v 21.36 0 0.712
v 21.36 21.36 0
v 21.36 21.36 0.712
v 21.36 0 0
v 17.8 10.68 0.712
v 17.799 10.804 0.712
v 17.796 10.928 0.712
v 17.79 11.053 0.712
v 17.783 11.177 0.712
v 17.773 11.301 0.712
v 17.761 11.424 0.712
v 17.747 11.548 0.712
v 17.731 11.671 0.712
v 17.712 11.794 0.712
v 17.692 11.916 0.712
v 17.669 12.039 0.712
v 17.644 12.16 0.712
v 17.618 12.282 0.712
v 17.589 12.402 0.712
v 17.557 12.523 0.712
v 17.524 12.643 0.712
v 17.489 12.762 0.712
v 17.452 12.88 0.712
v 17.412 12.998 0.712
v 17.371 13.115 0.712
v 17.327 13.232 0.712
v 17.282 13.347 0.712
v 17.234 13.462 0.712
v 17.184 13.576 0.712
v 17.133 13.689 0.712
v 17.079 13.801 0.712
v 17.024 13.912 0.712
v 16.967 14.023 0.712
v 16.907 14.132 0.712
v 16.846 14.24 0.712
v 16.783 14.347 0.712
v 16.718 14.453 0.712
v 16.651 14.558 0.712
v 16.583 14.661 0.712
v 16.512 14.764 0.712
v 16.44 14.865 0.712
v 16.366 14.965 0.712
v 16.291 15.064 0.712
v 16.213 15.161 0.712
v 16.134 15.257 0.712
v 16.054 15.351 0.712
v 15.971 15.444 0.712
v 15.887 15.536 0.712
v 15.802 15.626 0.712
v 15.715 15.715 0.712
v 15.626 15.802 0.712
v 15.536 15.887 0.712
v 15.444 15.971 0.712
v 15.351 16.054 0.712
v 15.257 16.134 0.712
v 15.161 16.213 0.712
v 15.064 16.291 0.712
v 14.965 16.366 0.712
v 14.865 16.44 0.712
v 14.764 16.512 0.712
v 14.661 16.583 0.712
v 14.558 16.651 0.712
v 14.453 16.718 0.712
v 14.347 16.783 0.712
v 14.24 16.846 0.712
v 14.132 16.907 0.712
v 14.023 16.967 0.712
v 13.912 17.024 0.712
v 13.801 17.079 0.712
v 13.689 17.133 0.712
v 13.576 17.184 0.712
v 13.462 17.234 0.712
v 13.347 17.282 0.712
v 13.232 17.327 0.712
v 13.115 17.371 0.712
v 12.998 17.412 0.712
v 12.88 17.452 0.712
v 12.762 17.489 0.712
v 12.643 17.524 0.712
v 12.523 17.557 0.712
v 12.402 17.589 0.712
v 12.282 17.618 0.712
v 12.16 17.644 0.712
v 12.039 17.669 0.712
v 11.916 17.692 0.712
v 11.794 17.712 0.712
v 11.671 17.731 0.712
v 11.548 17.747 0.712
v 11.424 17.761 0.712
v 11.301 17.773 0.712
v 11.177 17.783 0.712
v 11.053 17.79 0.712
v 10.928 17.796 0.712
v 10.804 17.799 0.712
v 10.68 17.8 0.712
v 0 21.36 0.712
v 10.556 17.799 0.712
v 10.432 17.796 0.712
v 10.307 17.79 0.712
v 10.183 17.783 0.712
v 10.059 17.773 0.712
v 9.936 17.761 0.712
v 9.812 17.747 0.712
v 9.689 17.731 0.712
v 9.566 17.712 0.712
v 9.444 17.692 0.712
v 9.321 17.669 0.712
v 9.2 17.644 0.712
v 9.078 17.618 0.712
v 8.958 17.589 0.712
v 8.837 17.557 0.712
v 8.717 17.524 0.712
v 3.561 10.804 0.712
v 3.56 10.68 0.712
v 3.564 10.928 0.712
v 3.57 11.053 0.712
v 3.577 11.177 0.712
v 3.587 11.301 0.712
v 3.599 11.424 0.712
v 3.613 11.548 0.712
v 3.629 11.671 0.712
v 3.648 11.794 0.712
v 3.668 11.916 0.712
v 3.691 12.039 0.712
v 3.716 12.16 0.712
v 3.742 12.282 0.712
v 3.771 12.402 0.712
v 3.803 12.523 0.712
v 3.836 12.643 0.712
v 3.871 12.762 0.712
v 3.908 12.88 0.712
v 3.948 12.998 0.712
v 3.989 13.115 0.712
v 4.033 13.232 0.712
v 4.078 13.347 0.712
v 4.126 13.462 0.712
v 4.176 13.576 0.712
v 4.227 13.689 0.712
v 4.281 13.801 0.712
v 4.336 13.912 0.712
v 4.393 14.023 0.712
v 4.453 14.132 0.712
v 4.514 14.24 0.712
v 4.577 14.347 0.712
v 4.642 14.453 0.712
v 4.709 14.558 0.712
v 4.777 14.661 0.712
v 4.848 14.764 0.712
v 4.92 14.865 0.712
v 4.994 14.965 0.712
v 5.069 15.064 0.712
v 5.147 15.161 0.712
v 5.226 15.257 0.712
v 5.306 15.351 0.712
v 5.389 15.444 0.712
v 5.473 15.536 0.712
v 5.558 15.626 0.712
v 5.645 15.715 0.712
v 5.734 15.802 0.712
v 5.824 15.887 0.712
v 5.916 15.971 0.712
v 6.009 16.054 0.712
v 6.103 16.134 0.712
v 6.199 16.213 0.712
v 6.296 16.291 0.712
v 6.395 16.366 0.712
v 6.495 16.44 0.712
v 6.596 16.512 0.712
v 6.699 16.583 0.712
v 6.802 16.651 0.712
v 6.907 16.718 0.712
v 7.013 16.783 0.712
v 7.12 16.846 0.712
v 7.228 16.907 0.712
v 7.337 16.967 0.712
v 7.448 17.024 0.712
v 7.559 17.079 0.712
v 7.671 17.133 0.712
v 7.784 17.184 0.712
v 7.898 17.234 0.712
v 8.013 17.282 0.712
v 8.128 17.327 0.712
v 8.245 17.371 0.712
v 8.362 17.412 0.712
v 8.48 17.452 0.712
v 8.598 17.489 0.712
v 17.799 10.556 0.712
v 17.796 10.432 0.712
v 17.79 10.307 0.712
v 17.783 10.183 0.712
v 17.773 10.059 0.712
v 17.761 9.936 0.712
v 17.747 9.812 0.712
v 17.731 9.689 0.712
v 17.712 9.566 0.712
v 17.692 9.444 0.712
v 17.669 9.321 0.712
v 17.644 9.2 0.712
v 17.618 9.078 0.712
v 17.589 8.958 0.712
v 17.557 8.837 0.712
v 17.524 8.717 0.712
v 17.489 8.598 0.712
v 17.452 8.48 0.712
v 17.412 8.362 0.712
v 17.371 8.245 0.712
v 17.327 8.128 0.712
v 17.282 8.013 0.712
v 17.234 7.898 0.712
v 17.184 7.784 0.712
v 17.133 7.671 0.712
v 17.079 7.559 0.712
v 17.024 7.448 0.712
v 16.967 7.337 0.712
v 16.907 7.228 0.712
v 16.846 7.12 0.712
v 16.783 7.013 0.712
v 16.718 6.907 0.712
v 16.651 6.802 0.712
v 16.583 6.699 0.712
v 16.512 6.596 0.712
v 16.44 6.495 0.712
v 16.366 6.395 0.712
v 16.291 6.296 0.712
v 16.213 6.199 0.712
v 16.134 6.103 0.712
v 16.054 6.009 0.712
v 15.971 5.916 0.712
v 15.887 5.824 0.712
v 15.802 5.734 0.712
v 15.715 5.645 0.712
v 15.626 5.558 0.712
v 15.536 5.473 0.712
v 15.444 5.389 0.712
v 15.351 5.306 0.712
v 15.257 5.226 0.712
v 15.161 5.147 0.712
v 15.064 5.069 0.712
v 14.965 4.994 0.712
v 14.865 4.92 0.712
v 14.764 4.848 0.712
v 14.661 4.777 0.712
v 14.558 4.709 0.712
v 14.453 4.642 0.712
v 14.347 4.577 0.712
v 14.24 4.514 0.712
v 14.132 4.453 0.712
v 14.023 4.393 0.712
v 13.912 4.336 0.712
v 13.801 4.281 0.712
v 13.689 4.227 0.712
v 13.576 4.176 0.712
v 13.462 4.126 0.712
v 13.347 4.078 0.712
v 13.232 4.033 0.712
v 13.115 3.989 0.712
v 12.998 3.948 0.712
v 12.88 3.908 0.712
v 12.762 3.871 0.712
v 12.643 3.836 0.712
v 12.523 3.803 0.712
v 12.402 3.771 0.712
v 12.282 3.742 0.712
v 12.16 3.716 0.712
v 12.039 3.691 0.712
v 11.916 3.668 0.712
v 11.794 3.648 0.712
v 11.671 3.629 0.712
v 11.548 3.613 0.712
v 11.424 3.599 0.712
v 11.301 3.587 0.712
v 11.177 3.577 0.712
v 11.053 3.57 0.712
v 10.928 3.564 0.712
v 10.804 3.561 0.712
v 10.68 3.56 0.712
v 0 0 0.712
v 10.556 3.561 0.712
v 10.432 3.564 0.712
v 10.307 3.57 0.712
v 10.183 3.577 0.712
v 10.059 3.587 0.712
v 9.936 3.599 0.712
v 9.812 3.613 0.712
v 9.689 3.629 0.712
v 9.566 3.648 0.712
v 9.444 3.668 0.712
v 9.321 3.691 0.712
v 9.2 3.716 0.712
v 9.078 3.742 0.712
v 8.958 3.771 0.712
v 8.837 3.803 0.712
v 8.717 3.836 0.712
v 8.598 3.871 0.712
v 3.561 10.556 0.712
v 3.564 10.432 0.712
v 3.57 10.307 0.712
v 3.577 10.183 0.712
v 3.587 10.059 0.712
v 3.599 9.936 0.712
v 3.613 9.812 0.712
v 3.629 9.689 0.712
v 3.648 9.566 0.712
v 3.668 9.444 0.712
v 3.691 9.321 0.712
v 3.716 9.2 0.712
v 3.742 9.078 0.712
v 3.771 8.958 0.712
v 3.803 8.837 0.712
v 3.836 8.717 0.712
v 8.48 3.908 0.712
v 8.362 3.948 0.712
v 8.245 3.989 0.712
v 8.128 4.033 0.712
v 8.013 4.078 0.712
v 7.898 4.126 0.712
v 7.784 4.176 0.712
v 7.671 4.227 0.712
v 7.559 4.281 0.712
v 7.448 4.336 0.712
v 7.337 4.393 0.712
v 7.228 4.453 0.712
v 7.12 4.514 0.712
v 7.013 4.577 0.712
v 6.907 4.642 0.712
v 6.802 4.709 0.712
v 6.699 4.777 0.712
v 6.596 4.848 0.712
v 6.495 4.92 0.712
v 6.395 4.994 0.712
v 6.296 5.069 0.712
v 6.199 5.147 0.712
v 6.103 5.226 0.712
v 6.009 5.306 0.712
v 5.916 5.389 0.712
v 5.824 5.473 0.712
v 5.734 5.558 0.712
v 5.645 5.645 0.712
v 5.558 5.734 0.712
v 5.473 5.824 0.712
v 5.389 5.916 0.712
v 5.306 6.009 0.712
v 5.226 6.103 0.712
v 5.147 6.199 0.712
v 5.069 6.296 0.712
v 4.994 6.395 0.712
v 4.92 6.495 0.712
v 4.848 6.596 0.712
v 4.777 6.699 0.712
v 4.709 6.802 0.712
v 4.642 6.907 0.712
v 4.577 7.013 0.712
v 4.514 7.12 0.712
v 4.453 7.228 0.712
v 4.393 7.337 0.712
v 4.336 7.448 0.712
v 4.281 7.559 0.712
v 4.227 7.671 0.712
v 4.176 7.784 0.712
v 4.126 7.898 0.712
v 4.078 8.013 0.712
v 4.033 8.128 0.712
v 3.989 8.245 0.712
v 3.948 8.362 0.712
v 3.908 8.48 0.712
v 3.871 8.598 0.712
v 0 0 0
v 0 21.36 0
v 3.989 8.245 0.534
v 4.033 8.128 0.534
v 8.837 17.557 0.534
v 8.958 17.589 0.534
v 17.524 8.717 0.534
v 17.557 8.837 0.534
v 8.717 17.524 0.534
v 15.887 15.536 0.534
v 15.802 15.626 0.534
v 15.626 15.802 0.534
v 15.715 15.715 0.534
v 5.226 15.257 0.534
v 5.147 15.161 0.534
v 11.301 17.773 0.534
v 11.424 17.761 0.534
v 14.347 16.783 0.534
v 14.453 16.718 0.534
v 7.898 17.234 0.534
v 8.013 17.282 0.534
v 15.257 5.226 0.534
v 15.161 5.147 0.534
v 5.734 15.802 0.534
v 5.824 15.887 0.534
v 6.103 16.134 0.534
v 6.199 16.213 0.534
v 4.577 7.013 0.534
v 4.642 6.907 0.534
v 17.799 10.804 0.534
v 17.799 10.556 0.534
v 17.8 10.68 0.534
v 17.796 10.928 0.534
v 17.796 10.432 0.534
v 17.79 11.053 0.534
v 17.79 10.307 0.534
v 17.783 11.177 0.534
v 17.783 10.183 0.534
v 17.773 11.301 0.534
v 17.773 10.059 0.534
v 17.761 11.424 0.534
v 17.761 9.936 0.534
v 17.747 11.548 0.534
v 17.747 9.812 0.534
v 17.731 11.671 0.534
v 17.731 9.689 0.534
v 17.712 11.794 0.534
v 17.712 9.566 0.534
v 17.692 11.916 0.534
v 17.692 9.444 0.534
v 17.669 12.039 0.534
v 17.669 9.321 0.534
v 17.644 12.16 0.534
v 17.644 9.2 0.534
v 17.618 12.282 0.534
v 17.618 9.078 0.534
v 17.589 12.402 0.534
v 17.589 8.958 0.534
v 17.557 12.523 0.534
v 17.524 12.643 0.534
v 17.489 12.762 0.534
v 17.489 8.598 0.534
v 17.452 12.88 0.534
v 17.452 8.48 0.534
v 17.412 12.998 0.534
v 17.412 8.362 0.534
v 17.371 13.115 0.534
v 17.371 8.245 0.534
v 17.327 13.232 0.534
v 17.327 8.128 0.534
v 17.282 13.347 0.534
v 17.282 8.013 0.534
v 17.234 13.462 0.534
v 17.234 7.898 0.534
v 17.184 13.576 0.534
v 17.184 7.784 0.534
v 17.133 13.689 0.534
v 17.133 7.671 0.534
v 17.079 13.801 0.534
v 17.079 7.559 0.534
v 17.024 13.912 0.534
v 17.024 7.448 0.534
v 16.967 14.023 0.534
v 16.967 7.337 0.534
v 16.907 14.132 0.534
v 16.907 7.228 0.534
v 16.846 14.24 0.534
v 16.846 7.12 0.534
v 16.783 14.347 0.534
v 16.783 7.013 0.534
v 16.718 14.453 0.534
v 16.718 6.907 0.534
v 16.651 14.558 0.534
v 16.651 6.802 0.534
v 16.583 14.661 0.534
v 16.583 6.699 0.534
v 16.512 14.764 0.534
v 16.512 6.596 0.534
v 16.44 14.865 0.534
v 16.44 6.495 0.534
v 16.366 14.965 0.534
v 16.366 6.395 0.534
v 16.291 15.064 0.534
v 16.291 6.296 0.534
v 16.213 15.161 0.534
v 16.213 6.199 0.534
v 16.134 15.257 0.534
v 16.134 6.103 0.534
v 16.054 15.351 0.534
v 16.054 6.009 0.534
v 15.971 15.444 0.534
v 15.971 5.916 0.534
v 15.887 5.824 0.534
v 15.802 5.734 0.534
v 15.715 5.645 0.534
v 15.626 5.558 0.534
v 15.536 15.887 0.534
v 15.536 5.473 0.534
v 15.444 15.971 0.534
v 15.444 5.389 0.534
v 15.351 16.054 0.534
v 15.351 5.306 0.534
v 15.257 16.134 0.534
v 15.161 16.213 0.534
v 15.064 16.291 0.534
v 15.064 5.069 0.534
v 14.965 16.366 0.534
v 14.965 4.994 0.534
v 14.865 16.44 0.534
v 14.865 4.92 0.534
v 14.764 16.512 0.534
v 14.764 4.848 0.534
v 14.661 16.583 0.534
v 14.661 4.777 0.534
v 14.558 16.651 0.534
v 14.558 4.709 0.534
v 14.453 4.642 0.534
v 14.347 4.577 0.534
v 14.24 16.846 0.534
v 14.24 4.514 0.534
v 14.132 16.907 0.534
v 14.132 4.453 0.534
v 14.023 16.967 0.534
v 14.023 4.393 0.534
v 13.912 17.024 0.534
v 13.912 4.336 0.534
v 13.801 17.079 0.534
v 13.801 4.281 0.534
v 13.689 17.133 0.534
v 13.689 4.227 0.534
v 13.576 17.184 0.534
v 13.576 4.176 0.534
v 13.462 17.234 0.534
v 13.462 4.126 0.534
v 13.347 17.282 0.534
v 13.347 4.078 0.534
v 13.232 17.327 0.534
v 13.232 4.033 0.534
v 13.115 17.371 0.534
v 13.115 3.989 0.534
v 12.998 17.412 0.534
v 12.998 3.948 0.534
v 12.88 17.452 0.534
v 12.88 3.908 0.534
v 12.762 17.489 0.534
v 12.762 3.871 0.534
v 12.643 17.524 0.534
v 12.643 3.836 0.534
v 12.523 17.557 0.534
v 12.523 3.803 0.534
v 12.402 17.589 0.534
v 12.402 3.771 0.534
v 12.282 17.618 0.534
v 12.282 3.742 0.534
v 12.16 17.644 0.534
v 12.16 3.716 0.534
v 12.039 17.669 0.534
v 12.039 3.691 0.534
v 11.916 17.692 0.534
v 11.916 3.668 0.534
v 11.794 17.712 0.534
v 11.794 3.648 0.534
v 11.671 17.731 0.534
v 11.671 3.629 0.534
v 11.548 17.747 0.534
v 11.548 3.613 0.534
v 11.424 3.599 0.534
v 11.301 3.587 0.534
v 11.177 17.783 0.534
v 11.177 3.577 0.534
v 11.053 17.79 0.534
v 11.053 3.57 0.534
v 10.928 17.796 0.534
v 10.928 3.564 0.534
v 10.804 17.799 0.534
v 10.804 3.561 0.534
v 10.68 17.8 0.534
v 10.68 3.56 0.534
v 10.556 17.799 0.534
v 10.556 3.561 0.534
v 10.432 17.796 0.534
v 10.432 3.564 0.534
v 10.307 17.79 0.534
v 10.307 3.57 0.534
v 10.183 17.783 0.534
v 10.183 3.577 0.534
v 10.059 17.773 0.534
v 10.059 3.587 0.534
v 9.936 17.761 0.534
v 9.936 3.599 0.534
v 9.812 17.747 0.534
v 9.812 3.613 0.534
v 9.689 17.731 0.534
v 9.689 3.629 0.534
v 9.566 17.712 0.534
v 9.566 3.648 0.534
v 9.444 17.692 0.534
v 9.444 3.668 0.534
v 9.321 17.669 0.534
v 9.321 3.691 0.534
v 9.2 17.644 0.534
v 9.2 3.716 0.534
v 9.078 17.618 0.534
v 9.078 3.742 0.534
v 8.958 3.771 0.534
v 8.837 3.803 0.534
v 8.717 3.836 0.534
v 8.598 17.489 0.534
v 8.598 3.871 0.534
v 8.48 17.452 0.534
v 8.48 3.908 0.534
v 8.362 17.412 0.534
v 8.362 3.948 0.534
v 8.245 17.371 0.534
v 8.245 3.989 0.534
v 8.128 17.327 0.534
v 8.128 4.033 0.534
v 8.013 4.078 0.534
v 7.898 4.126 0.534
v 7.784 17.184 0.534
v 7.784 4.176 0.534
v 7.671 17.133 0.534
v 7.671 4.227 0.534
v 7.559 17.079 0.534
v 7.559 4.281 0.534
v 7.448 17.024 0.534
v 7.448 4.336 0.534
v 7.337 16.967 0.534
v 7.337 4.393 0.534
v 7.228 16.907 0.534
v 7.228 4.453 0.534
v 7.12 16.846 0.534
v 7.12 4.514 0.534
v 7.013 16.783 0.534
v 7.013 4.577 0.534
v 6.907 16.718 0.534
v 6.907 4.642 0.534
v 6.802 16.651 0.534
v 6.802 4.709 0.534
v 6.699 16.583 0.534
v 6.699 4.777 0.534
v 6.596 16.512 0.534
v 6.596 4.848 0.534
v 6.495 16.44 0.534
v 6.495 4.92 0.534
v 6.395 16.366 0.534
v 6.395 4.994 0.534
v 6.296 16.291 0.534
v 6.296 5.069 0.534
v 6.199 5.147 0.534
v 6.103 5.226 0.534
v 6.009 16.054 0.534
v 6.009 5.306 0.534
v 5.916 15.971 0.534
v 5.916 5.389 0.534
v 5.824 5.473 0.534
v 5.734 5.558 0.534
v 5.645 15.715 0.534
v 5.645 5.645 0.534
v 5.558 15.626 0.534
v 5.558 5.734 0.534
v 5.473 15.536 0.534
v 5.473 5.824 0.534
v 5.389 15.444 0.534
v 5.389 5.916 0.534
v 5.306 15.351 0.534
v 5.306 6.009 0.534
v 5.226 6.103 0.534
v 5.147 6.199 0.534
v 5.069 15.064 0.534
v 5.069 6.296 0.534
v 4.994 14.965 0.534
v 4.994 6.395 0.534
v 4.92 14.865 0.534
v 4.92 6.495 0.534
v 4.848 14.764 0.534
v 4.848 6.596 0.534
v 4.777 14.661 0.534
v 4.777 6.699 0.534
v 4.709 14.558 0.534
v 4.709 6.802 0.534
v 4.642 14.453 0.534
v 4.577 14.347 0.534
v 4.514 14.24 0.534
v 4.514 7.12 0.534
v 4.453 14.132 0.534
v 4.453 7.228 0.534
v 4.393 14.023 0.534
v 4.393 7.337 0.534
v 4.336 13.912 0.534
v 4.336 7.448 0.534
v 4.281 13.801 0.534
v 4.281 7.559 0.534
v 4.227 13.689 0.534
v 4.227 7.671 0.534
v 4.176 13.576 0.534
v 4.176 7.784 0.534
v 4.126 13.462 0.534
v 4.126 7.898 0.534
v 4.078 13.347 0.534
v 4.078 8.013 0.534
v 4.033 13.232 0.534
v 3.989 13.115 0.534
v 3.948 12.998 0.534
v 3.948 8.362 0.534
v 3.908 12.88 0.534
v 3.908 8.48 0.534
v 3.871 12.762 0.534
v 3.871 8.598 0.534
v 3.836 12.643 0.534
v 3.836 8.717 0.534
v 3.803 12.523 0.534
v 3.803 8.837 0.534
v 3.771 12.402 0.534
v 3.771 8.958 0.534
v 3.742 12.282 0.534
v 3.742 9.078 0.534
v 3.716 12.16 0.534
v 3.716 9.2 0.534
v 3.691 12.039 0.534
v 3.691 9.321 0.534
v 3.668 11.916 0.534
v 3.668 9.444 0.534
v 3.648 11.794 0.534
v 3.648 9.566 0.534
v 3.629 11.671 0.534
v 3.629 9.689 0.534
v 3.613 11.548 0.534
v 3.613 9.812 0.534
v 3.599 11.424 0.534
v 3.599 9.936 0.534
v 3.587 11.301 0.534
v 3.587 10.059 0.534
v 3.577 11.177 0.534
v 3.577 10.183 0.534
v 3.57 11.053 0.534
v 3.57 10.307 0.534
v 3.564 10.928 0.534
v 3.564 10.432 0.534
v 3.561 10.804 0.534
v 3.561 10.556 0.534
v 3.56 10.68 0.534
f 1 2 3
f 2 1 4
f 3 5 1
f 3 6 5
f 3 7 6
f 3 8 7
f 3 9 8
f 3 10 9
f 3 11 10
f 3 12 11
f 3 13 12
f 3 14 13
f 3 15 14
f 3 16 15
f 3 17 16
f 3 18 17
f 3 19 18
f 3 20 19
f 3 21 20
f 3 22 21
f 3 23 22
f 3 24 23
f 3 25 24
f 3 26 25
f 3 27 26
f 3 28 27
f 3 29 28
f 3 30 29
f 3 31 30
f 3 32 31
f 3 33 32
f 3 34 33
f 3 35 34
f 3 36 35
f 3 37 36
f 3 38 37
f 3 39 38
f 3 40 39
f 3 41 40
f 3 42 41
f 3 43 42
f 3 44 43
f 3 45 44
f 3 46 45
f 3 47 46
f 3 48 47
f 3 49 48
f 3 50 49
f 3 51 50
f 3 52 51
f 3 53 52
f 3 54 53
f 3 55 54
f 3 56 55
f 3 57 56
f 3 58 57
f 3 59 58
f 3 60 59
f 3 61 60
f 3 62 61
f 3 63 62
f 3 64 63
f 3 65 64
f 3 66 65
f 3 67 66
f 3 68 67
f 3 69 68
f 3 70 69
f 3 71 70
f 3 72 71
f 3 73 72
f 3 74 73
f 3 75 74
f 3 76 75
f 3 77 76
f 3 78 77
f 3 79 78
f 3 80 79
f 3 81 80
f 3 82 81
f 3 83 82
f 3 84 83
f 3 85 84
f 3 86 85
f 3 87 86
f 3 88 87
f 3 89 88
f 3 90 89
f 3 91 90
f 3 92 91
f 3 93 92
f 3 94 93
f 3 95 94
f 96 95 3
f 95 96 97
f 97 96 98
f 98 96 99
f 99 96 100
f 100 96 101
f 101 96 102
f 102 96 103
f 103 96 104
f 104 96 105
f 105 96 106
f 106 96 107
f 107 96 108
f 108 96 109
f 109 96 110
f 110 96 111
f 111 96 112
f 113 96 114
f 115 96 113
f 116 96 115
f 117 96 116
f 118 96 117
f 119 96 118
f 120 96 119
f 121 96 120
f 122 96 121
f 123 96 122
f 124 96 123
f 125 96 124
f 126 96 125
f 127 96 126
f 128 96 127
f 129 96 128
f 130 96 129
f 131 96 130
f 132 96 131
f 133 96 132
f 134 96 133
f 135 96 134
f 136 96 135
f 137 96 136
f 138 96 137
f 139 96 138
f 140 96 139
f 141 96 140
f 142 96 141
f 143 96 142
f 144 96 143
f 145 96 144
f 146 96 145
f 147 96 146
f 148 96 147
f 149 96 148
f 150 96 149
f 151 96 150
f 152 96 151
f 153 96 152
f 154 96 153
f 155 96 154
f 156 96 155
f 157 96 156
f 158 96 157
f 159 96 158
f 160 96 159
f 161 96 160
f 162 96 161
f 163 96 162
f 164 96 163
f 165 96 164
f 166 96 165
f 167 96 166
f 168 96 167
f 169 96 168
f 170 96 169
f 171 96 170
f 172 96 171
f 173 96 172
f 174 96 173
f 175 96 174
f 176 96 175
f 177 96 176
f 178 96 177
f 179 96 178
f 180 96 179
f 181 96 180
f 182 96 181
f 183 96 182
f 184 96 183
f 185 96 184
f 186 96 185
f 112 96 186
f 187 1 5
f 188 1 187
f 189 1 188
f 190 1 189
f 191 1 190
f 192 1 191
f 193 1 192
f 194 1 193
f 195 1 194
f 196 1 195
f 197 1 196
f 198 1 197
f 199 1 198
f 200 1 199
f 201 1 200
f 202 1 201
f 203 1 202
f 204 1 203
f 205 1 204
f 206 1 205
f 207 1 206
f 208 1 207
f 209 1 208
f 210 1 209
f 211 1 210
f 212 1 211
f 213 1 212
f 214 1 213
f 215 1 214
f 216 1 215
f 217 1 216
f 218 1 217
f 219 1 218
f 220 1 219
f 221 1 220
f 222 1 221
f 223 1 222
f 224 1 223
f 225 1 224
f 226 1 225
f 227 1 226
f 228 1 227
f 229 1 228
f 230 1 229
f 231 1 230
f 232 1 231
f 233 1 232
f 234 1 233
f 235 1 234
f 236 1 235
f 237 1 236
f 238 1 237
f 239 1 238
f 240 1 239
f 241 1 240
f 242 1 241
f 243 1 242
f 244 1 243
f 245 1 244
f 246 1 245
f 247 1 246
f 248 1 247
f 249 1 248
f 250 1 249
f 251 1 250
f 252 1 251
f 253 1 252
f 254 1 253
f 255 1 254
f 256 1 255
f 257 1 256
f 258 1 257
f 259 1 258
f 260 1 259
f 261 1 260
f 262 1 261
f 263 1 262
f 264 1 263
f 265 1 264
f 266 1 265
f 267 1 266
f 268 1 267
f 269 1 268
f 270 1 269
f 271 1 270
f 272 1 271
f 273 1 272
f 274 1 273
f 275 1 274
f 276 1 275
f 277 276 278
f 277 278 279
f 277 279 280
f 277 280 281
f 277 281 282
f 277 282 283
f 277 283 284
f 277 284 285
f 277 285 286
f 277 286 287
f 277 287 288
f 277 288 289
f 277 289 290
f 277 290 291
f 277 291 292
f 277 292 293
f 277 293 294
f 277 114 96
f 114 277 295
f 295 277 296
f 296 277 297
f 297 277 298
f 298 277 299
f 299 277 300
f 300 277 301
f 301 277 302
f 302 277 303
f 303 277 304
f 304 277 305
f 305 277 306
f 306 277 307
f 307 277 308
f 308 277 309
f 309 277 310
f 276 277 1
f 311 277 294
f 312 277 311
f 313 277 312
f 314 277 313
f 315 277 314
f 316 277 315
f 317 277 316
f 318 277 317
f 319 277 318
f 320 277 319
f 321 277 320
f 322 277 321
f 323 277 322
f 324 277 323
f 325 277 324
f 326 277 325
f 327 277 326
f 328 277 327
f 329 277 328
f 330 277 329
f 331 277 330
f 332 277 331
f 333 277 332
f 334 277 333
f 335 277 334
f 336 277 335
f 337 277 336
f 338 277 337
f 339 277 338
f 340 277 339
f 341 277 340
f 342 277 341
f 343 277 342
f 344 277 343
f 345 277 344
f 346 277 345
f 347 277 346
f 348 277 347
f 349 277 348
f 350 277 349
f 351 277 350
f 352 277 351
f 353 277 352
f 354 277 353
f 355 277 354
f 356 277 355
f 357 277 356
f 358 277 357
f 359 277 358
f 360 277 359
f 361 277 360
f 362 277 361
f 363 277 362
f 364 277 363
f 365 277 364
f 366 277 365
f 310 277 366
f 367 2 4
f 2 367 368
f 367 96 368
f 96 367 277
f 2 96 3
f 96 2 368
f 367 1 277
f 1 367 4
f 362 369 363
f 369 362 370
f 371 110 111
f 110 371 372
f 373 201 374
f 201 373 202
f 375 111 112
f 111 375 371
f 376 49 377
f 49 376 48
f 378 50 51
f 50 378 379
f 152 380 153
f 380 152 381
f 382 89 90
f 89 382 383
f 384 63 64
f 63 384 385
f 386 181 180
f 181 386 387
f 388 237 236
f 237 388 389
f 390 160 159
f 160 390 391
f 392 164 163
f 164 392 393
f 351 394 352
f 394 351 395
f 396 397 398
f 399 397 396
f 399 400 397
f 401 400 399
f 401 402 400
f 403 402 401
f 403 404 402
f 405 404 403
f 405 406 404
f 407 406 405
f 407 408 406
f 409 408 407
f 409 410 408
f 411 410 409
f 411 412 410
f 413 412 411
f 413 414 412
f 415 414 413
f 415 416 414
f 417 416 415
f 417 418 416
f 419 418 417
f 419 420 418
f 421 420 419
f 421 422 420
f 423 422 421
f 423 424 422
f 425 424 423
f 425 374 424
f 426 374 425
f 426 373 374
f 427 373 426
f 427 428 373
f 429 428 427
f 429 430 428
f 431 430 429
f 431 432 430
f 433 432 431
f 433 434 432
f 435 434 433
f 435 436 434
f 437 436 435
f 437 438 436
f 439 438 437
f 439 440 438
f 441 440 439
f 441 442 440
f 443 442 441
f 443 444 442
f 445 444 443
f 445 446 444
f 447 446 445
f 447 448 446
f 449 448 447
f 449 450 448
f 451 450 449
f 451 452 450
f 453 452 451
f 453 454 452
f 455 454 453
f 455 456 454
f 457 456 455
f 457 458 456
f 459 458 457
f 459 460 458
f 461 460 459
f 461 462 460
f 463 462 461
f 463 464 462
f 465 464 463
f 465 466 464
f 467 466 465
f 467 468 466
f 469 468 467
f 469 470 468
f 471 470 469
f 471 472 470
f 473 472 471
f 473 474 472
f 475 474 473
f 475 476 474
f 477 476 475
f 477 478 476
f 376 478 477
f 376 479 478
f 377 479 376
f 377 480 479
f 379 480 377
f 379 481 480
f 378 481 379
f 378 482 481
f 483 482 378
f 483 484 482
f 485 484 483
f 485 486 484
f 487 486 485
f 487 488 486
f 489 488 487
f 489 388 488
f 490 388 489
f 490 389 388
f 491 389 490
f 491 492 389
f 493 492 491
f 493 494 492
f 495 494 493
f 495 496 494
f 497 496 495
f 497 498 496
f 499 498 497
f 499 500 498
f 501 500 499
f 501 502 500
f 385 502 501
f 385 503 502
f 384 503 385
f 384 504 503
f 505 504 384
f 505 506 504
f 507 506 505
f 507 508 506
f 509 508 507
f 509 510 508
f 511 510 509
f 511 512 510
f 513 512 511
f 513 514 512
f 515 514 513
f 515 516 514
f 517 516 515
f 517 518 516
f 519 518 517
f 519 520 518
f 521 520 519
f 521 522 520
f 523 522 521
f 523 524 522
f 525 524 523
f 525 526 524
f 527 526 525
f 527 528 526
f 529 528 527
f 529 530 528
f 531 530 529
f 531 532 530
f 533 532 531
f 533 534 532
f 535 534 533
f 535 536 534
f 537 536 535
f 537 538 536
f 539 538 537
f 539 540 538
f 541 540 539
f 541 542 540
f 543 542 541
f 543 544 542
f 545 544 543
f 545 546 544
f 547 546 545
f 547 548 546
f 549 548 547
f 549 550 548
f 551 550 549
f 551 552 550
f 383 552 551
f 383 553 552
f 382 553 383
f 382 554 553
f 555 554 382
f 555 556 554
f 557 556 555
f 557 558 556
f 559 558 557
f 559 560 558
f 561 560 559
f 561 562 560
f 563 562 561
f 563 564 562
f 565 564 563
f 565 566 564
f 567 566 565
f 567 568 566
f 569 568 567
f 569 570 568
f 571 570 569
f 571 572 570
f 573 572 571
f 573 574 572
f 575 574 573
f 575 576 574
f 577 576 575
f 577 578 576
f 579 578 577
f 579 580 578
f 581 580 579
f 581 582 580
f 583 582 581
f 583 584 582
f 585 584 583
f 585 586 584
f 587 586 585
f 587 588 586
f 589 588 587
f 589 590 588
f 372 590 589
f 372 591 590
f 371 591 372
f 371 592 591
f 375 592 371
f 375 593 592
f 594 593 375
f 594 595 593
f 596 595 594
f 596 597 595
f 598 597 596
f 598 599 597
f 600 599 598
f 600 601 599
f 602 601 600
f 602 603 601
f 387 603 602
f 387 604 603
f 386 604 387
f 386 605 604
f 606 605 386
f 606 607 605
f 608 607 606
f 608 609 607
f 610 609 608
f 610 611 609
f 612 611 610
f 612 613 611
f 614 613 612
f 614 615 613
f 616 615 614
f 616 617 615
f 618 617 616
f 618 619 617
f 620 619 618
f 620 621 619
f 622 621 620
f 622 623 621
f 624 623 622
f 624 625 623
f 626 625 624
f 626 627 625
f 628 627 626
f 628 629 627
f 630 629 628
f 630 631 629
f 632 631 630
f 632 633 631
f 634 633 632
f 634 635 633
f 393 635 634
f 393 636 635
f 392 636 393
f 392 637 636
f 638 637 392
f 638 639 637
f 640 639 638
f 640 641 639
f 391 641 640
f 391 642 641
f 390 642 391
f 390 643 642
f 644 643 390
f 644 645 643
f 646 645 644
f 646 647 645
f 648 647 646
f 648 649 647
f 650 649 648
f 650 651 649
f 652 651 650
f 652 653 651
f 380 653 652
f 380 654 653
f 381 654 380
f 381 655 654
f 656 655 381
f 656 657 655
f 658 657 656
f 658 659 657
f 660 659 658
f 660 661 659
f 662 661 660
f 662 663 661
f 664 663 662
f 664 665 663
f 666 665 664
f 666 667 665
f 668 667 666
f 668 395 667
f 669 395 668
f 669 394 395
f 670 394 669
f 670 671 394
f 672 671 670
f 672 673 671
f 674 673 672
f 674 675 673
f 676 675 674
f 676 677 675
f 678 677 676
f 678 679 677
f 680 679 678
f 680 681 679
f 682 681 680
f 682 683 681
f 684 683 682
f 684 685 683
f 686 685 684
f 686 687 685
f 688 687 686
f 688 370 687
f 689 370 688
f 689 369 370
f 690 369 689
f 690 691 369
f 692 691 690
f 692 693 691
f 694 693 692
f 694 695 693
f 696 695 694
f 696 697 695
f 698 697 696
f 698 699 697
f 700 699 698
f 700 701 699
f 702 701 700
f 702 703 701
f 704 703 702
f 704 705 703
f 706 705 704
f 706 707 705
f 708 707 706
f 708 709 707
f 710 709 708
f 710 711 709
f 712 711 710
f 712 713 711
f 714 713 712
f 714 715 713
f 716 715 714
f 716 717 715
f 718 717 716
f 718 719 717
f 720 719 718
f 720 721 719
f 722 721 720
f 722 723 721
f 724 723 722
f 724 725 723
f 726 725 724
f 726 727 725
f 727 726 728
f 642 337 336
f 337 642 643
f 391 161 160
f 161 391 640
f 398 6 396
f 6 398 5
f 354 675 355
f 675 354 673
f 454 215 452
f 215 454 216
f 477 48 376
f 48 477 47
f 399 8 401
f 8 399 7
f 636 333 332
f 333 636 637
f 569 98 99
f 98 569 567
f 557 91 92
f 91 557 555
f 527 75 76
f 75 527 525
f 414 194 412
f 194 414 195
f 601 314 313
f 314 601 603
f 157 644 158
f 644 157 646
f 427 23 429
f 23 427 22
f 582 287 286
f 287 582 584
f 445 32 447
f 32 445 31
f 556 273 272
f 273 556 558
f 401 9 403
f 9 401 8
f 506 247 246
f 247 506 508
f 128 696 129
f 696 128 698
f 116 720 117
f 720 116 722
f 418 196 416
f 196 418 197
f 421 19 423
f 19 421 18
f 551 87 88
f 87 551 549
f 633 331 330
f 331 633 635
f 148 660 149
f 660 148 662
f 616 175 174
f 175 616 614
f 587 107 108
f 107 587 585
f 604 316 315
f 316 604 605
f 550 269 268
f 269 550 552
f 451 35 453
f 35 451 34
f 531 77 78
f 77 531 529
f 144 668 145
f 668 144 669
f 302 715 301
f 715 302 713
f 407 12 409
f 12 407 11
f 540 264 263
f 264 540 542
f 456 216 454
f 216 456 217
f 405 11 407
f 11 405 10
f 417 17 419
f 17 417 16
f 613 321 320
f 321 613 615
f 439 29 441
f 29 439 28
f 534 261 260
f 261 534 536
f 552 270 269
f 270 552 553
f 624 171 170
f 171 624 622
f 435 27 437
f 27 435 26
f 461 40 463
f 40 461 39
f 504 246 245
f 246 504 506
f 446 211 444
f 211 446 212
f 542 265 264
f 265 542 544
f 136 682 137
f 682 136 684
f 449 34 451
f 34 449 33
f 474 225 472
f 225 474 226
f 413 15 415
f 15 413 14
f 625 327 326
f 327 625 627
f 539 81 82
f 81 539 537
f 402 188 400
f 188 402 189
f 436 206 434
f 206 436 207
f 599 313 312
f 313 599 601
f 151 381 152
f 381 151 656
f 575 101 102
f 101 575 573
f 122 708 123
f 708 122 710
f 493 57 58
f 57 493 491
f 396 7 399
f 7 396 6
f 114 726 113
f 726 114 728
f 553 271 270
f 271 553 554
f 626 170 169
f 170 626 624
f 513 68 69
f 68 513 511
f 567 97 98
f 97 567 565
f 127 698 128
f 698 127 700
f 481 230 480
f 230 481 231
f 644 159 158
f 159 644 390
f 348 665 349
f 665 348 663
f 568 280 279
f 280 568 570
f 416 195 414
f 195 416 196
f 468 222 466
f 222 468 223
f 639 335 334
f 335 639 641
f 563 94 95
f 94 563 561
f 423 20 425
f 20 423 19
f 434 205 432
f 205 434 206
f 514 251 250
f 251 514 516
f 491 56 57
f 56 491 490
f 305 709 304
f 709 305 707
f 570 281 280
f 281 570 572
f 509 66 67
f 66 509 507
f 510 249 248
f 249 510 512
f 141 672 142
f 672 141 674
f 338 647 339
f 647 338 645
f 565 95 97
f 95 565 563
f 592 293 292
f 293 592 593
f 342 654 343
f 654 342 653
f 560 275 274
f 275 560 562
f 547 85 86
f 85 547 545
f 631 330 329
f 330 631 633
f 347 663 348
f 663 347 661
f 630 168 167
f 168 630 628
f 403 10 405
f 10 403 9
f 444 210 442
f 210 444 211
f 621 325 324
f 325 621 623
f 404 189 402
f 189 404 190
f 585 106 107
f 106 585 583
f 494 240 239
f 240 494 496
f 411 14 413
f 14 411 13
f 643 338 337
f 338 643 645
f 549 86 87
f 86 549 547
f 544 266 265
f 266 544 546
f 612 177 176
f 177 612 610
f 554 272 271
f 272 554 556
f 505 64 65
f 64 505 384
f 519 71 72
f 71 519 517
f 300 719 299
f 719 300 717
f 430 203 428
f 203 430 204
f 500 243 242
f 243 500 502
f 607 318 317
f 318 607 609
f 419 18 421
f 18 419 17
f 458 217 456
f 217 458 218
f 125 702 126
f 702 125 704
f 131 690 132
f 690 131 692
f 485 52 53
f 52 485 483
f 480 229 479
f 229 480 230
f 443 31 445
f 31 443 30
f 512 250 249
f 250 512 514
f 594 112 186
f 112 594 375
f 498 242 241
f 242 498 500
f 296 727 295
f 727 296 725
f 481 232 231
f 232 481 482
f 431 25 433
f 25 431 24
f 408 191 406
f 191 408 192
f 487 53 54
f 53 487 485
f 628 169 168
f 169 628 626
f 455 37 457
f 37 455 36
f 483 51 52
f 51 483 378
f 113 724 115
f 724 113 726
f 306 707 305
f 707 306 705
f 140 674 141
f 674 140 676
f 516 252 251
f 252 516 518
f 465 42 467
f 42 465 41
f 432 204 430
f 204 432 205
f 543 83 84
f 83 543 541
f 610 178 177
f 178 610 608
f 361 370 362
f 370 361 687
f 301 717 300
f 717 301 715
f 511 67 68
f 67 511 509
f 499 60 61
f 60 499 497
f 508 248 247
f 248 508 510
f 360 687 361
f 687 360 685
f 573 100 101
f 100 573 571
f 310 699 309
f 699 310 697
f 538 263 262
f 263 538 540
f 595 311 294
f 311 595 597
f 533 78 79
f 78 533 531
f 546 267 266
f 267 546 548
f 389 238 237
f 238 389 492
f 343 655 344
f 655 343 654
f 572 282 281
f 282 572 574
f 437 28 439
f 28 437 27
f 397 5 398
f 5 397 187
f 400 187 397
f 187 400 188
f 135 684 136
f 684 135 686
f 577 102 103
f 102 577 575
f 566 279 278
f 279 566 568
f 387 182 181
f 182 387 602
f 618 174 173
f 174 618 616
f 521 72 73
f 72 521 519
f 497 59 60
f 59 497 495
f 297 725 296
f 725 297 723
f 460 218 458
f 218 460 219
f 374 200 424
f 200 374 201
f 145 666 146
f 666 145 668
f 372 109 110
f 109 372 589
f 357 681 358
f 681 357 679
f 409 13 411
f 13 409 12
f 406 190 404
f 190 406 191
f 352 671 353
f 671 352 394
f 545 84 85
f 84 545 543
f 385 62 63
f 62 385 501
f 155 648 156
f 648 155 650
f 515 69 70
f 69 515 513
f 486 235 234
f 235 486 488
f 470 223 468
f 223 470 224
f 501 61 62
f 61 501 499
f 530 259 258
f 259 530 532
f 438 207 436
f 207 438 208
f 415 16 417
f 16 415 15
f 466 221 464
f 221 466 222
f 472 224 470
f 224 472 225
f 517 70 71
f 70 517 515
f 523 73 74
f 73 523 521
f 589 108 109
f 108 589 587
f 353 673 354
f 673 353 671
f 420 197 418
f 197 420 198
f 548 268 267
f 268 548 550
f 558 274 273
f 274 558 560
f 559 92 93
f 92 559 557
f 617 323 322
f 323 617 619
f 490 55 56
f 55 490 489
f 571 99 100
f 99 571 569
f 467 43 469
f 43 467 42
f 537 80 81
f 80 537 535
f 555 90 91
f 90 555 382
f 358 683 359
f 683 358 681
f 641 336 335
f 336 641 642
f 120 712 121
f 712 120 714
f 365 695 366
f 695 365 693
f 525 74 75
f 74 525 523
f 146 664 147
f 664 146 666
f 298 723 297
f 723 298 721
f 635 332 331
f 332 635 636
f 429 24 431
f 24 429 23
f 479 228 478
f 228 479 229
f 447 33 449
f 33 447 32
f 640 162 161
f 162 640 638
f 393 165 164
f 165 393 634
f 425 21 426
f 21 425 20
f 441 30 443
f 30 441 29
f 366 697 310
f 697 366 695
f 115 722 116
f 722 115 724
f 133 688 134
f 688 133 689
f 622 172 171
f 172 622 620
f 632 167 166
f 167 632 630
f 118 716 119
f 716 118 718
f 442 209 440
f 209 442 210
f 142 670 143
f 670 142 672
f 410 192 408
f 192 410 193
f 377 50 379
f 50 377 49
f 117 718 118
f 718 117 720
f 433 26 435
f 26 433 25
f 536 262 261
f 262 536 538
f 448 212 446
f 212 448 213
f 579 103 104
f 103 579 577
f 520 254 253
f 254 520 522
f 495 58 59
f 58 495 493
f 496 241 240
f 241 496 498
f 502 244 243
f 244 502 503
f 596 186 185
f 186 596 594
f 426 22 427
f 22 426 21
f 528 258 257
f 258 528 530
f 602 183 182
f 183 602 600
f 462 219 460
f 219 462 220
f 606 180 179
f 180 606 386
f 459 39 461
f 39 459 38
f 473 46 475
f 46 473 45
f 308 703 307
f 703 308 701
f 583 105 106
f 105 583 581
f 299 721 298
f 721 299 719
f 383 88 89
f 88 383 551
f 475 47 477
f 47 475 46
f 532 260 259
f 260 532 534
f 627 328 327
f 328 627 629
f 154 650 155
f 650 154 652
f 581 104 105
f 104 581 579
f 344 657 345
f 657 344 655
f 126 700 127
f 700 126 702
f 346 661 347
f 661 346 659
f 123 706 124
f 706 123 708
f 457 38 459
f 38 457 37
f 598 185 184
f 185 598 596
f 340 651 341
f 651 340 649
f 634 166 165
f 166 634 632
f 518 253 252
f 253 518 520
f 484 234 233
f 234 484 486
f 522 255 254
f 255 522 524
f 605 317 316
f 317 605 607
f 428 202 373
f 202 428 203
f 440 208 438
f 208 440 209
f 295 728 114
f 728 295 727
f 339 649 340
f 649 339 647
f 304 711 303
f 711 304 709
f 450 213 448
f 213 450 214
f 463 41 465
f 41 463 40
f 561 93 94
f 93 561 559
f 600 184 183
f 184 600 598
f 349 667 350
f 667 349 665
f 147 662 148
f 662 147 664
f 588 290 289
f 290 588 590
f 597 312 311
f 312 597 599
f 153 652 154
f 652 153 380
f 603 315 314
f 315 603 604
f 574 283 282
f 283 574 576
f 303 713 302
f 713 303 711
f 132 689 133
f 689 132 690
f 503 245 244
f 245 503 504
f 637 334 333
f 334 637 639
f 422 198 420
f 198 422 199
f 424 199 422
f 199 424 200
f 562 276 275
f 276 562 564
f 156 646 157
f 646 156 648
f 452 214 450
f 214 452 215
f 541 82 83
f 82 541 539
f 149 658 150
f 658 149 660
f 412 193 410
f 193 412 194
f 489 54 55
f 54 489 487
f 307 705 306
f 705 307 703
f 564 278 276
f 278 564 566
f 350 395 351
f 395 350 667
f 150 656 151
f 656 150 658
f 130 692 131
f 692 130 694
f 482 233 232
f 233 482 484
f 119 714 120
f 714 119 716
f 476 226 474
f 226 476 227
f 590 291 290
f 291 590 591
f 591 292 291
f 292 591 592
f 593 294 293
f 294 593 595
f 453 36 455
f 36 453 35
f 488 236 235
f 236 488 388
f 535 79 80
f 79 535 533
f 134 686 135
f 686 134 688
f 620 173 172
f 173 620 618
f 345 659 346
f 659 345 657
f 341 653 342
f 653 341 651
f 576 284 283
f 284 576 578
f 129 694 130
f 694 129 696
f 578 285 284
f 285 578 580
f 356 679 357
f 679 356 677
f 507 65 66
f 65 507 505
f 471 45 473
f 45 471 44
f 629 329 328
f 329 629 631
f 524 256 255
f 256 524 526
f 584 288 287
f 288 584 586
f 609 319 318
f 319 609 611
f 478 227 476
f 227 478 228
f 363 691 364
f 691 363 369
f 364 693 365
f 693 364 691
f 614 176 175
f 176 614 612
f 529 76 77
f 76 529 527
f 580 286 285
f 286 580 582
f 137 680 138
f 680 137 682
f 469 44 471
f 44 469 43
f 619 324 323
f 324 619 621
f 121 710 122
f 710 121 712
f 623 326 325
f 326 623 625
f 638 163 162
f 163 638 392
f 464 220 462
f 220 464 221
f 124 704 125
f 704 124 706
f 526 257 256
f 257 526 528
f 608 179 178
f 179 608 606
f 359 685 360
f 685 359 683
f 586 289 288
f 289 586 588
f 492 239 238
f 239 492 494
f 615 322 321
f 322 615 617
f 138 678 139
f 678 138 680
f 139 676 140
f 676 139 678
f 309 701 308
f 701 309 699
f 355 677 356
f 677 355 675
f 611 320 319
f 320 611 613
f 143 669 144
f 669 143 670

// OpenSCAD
$fn = 360;

// Actual measured button dimensions in mm.
ACTUAL_SQUARE_SIDE = 6;
ACTUAL_CIRCLE_DIAMETER = 4;
ACTUAL_HEIGHT = 0.2;

// set to how much larger than actual it should be.
SCALING_FACTOR = 3.56;

scale(v = [SCALING_FACTOR, SCALING_FACTOR, SCALING_FACTOR]) {

    difference() {
        cube([ACTUAL_SQUARE_SIDE, ACTUAL_SQUARE_SIDE, ACTUAL_HEIGHT]);
        
        translate([ACTUAL_SQUARE_SIDE / 2, ACTUAL_SQUARE_SIDE / 2, ACTUAL_HEIGHT * .75]) {
            cylinder(d = ACTUAL_CIRCLE_DIAMETER);
        }
    }

}
